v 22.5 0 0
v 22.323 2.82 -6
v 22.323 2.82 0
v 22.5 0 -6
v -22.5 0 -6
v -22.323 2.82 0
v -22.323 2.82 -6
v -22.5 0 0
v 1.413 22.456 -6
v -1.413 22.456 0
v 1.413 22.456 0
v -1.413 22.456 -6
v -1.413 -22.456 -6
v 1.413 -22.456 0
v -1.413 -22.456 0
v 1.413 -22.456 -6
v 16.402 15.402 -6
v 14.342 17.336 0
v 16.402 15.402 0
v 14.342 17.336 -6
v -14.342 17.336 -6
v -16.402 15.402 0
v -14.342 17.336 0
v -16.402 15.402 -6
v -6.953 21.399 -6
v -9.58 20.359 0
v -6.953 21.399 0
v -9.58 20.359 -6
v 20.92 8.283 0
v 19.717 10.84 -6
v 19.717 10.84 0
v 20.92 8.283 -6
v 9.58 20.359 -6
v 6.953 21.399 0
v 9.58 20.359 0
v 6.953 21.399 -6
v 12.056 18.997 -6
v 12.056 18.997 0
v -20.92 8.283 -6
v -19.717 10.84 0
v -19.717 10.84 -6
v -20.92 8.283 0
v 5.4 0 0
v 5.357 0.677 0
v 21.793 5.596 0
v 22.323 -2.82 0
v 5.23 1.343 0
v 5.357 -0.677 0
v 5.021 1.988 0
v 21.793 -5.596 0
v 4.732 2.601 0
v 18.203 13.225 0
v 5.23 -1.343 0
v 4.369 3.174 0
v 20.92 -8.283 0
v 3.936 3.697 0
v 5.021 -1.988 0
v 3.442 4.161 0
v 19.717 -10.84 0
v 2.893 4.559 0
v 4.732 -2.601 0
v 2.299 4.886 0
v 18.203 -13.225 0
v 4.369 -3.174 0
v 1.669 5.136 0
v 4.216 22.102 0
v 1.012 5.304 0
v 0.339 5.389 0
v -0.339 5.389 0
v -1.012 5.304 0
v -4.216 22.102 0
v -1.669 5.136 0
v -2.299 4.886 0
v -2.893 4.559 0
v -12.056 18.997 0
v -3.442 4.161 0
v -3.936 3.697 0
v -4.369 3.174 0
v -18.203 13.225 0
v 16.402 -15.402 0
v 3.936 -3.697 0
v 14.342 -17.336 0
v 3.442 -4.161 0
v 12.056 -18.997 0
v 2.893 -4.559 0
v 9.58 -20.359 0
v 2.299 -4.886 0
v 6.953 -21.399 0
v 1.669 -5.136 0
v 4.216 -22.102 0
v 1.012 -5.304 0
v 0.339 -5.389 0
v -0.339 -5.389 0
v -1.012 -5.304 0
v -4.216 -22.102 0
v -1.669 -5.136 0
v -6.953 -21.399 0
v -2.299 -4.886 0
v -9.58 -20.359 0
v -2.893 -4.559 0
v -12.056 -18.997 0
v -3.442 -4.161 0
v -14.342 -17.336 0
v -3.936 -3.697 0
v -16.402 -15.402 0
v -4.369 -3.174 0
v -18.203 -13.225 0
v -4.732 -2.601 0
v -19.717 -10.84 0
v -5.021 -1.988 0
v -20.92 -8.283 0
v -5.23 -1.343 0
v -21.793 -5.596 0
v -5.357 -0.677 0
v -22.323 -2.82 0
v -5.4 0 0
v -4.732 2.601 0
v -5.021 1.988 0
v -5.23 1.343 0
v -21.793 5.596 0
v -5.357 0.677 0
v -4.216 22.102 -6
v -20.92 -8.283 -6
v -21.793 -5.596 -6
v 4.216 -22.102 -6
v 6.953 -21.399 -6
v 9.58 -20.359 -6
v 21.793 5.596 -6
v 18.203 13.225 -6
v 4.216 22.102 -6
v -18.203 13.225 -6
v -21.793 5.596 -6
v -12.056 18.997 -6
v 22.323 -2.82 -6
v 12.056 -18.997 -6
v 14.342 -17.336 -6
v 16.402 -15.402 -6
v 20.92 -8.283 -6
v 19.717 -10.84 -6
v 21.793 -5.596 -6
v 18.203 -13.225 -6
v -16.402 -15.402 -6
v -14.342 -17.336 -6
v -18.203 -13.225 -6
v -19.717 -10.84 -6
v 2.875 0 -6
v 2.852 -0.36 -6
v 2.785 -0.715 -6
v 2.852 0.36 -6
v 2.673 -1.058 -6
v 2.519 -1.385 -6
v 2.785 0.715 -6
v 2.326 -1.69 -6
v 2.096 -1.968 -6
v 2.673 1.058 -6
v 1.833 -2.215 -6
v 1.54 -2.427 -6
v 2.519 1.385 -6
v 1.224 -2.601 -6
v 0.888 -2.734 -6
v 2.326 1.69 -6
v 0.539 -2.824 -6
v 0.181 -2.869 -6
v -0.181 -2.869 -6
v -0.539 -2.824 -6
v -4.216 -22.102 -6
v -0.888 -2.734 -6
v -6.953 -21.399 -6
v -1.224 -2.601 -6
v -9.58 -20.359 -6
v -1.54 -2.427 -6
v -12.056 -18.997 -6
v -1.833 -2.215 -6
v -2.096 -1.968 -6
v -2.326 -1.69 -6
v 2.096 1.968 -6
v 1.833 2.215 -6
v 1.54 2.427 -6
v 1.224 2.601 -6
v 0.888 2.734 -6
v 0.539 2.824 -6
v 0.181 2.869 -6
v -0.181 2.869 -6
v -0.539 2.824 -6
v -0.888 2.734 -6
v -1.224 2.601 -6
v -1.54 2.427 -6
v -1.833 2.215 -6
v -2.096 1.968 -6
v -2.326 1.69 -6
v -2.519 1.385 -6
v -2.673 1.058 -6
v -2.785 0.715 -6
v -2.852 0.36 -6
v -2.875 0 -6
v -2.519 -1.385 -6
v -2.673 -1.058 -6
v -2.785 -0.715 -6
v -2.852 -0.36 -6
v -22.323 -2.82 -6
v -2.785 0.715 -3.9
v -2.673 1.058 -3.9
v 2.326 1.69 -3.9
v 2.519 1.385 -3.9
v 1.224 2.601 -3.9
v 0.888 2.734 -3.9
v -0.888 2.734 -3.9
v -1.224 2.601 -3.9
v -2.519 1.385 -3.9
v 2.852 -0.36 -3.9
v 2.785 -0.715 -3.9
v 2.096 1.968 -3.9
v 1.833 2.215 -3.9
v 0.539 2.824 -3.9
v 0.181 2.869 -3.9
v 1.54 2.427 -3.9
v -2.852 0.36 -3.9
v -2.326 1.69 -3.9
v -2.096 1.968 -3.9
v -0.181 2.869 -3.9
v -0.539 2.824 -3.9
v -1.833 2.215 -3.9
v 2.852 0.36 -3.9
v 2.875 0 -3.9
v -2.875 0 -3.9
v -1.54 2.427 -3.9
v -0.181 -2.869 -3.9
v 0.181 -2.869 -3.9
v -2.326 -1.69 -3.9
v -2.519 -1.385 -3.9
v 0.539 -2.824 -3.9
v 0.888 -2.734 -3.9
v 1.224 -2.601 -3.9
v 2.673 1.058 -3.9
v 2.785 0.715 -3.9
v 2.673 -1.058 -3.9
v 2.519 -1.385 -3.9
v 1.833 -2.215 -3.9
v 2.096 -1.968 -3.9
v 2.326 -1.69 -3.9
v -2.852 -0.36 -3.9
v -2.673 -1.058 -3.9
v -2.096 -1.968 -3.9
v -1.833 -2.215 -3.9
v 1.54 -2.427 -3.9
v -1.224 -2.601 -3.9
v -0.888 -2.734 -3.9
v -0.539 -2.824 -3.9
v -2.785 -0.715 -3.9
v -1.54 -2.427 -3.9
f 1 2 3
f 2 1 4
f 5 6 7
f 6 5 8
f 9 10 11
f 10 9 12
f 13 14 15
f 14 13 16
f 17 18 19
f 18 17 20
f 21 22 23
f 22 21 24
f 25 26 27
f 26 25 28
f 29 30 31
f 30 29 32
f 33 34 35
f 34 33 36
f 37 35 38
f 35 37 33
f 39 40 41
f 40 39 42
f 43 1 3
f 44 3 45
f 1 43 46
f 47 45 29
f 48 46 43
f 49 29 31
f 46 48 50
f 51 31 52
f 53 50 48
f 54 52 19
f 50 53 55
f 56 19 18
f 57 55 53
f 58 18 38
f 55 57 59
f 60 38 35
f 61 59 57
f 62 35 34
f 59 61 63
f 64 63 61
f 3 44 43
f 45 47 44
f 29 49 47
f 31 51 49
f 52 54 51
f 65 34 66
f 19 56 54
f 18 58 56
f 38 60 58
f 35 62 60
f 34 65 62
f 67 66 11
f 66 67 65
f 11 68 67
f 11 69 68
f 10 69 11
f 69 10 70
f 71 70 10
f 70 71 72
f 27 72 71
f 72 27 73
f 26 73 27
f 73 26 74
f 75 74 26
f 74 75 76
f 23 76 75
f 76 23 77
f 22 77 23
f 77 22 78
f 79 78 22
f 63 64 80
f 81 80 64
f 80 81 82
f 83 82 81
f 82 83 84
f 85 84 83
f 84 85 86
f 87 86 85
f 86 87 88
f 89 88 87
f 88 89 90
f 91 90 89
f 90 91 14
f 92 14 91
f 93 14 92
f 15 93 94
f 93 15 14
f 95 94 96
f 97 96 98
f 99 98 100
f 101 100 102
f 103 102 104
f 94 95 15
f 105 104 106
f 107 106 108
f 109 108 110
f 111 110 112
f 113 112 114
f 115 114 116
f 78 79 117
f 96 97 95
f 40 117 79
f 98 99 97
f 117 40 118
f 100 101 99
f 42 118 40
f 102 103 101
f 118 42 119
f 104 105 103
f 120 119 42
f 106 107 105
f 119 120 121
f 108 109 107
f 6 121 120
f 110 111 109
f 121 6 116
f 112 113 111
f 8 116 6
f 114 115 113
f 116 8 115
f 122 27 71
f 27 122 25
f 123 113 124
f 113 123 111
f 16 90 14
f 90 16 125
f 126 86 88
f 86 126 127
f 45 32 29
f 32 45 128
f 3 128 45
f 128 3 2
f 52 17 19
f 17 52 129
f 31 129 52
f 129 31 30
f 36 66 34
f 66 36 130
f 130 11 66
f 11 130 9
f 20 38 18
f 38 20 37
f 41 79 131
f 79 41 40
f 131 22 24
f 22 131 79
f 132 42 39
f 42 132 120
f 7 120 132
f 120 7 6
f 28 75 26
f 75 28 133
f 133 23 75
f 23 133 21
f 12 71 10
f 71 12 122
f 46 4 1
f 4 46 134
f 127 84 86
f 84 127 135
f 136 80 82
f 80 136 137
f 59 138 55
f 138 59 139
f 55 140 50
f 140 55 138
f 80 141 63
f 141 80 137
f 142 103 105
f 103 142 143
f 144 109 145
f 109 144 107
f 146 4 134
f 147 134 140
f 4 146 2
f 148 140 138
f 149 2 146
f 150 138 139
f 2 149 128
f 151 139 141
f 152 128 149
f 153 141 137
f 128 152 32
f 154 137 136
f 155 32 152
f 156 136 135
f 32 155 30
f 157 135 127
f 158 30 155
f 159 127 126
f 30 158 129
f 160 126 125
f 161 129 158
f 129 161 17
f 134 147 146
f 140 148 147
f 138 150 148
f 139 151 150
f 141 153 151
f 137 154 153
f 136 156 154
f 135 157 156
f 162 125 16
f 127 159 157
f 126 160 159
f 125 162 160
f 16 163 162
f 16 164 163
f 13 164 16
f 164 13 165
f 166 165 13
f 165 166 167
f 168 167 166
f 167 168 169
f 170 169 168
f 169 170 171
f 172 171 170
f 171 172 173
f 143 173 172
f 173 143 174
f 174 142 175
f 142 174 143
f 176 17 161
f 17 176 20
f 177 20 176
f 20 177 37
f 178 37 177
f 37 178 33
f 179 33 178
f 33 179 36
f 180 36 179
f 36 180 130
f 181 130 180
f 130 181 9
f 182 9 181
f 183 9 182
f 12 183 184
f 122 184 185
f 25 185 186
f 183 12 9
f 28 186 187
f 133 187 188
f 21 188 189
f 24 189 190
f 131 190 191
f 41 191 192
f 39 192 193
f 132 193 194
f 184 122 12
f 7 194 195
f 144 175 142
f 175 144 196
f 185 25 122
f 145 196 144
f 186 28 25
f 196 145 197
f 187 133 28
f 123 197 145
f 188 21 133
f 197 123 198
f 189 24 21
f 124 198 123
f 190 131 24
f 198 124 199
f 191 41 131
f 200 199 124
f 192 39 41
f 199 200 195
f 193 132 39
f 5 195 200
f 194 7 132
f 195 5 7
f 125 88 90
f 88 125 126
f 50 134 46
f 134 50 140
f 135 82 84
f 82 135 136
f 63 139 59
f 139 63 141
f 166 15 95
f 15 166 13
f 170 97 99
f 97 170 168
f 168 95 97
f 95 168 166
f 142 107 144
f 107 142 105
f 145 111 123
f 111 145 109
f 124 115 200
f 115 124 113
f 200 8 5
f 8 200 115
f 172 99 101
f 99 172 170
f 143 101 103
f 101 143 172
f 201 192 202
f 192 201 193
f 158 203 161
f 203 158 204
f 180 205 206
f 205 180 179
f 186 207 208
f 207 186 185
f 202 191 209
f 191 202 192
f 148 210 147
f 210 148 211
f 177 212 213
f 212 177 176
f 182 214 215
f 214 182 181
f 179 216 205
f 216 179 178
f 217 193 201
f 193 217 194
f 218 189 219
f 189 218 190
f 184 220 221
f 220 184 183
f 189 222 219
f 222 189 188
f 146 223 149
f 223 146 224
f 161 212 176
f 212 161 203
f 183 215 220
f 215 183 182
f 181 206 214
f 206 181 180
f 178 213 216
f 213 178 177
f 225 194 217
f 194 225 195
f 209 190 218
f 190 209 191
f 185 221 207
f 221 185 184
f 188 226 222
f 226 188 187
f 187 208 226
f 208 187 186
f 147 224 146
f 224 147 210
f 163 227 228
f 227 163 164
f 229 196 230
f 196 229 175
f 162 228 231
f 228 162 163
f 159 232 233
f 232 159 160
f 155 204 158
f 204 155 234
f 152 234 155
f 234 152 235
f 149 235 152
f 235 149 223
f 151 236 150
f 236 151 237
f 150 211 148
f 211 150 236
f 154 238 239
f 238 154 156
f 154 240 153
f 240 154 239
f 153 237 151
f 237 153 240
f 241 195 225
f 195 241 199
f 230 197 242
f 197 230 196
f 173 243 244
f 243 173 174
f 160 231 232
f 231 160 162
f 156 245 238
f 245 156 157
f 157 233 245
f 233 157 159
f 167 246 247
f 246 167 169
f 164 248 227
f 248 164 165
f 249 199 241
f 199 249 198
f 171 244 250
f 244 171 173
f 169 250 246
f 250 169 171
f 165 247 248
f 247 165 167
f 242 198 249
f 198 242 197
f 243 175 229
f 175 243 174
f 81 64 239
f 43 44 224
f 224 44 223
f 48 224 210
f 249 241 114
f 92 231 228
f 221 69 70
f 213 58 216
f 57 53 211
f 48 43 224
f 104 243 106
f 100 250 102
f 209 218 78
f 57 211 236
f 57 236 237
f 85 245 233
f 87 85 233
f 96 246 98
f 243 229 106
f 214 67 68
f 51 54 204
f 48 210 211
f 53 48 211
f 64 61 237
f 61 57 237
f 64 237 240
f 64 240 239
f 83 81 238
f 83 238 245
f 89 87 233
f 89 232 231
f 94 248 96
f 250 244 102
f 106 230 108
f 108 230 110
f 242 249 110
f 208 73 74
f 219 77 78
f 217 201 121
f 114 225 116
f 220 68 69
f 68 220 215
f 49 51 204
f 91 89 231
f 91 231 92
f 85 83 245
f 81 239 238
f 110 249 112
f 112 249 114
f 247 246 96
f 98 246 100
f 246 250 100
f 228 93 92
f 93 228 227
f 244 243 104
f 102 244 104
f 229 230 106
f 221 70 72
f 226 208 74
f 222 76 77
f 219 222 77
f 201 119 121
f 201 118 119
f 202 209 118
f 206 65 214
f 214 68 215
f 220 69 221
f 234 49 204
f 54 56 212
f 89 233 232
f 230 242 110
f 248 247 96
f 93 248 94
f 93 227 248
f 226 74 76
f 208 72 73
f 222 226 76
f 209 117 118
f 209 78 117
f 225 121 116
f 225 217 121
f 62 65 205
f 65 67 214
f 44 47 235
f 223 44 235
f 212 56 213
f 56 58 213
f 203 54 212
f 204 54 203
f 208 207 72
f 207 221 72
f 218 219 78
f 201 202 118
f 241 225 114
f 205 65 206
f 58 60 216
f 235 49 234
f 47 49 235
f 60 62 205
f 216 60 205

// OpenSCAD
$fn = 50;


difference() {
	union() {
		translate(v = [0, 0, -6.0000000000]) {
			cylinder(h = 6, r = 22.5000000000);
		}
		translate(v = [0, 0, -9.0000000000]) {
			cylinder(h = 9, r = 2.8750000000);
		}
	}
	union() {
		translate(v = [0, 0, 0]) {
			rotate(a = [0, 0, 0]) {
				difference() {
					union() {
						translate(v = [0, 0, -9.0000000000]) {
							cylinder(h = 9, r = 2.6000000000);
						}
						translate(v = [0, 0, -3.9000000000]) {
							cylinder(h = 3.9000000000, r1 = 2.8750000000, r2 = 5.4000000000);
						}
						translate(v = [0, 0, -9.0000000000]) {
							cylinder(h = 9, r = 2.8750000000);
						}
						translate(v = [0, 0, -9.0000000000]) {
							cylinder(h = 9, r = 2.6000000000);
						}
					}
					union();
				}
			}
		}
	}
}
